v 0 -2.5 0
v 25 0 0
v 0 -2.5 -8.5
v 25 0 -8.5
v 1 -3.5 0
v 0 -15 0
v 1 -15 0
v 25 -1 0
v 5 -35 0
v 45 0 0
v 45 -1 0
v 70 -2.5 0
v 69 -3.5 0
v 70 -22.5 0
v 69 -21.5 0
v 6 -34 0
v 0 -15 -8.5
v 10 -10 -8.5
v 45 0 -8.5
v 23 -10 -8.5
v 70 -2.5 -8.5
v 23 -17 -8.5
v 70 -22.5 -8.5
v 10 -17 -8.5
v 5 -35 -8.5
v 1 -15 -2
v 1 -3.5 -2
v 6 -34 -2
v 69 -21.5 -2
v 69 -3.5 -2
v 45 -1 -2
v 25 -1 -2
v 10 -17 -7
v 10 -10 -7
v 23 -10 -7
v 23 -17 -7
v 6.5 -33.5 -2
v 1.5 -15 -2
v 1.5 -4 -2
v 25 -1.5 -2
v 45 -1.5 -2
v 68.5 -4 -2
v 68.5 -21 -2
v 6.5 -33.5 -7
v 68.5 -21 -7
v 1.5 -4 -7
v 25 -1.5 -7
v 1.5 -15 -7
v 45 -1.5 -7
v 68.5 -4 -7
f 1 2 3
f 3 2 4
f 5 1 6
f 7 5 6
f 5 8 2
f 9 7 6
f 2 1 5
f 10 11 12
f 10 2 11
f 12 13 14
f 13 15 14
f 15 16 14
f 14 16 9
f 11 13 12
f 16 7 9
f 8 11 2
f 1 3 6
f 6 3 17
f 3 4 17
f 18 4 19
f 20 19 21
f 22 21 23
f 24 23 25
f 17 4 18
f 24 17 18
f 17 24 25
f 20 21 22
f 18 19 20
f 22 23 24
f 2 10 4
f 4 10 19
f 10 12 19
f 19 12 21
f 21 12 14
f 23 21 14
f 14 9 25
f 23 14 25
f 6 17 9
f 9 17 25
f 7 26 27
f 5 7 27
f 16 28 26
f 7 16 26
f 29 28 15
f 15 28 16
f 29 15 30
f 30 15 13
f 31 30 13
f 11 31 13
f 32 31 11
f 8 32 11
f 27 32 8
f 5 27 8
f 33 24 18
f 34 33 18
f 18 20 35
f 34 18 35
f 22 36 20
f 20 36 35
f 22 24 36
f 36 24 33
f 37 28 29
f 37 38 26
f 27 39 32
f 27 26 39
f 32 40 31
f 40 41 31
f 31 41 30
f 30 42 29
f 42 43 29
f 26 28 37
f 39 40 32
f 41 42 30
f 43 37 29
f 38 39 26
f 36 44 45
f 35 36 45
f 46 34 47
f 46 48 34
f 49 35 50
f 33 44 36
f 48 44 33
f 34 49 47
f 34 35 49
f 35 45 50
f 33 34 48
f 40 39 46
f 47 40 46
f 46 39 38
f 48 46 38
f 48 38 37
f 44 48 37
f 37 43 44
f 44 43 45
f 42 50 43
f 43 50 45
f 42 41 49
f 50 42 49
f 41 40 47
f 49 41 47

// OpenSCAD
a=2.5;
b=25;
c=20;
d=20;
e=5;
f=20;
g=15;
x=1.5;
y = 1;
p = [
[0, a],   [b, 0], [b+c, 0], [2*b+c, a],   [2*b+c, a+d],     [e, g+f],   [0, g], 
[x, a+x], [b, x], [b+c, x], [2*b+c-x, a+x], [2*b+c-x, a+d-x], [e+x, g+f-x], [x, g]];
p2 = [
[y, a+y], [b, y], [b+c, y], [2*b+c-y, a+y], [2*b+c-y, a+d-y], [e+y, g+f-y], [y, g], 
[x, a+x], [b, x], [b+c, x], [2*b+c-x, a+x], [2*b+c-x, a+d-x], [e+x, g+f-x], [x, g]];
rotate([180, 0, 0])
difference(){
union(){
linear_extrude(height=7){
polygon(points=p,
 paths=[[0, 1, 2, 3, 4, 5, 6], [7, 8, 9, 10, 11, 12, 13]]);

}
translate([0, 0, 7])
linear_extrude(height=x){
polygon(points=p,
 paths=[[0, 1, 2, 3, 4, 5, 6]]);
}
}
translate([0, 0, 0])
linear_extrude(height=2){
polygon(points=p2,
 paths=[[0, 1, 2, 3, 4, 5, 6], [7, 8, 9, 10, 11, 12, 13]]);

}
translate([10, 10, 0])
cube([13, 7, 10]);
}
